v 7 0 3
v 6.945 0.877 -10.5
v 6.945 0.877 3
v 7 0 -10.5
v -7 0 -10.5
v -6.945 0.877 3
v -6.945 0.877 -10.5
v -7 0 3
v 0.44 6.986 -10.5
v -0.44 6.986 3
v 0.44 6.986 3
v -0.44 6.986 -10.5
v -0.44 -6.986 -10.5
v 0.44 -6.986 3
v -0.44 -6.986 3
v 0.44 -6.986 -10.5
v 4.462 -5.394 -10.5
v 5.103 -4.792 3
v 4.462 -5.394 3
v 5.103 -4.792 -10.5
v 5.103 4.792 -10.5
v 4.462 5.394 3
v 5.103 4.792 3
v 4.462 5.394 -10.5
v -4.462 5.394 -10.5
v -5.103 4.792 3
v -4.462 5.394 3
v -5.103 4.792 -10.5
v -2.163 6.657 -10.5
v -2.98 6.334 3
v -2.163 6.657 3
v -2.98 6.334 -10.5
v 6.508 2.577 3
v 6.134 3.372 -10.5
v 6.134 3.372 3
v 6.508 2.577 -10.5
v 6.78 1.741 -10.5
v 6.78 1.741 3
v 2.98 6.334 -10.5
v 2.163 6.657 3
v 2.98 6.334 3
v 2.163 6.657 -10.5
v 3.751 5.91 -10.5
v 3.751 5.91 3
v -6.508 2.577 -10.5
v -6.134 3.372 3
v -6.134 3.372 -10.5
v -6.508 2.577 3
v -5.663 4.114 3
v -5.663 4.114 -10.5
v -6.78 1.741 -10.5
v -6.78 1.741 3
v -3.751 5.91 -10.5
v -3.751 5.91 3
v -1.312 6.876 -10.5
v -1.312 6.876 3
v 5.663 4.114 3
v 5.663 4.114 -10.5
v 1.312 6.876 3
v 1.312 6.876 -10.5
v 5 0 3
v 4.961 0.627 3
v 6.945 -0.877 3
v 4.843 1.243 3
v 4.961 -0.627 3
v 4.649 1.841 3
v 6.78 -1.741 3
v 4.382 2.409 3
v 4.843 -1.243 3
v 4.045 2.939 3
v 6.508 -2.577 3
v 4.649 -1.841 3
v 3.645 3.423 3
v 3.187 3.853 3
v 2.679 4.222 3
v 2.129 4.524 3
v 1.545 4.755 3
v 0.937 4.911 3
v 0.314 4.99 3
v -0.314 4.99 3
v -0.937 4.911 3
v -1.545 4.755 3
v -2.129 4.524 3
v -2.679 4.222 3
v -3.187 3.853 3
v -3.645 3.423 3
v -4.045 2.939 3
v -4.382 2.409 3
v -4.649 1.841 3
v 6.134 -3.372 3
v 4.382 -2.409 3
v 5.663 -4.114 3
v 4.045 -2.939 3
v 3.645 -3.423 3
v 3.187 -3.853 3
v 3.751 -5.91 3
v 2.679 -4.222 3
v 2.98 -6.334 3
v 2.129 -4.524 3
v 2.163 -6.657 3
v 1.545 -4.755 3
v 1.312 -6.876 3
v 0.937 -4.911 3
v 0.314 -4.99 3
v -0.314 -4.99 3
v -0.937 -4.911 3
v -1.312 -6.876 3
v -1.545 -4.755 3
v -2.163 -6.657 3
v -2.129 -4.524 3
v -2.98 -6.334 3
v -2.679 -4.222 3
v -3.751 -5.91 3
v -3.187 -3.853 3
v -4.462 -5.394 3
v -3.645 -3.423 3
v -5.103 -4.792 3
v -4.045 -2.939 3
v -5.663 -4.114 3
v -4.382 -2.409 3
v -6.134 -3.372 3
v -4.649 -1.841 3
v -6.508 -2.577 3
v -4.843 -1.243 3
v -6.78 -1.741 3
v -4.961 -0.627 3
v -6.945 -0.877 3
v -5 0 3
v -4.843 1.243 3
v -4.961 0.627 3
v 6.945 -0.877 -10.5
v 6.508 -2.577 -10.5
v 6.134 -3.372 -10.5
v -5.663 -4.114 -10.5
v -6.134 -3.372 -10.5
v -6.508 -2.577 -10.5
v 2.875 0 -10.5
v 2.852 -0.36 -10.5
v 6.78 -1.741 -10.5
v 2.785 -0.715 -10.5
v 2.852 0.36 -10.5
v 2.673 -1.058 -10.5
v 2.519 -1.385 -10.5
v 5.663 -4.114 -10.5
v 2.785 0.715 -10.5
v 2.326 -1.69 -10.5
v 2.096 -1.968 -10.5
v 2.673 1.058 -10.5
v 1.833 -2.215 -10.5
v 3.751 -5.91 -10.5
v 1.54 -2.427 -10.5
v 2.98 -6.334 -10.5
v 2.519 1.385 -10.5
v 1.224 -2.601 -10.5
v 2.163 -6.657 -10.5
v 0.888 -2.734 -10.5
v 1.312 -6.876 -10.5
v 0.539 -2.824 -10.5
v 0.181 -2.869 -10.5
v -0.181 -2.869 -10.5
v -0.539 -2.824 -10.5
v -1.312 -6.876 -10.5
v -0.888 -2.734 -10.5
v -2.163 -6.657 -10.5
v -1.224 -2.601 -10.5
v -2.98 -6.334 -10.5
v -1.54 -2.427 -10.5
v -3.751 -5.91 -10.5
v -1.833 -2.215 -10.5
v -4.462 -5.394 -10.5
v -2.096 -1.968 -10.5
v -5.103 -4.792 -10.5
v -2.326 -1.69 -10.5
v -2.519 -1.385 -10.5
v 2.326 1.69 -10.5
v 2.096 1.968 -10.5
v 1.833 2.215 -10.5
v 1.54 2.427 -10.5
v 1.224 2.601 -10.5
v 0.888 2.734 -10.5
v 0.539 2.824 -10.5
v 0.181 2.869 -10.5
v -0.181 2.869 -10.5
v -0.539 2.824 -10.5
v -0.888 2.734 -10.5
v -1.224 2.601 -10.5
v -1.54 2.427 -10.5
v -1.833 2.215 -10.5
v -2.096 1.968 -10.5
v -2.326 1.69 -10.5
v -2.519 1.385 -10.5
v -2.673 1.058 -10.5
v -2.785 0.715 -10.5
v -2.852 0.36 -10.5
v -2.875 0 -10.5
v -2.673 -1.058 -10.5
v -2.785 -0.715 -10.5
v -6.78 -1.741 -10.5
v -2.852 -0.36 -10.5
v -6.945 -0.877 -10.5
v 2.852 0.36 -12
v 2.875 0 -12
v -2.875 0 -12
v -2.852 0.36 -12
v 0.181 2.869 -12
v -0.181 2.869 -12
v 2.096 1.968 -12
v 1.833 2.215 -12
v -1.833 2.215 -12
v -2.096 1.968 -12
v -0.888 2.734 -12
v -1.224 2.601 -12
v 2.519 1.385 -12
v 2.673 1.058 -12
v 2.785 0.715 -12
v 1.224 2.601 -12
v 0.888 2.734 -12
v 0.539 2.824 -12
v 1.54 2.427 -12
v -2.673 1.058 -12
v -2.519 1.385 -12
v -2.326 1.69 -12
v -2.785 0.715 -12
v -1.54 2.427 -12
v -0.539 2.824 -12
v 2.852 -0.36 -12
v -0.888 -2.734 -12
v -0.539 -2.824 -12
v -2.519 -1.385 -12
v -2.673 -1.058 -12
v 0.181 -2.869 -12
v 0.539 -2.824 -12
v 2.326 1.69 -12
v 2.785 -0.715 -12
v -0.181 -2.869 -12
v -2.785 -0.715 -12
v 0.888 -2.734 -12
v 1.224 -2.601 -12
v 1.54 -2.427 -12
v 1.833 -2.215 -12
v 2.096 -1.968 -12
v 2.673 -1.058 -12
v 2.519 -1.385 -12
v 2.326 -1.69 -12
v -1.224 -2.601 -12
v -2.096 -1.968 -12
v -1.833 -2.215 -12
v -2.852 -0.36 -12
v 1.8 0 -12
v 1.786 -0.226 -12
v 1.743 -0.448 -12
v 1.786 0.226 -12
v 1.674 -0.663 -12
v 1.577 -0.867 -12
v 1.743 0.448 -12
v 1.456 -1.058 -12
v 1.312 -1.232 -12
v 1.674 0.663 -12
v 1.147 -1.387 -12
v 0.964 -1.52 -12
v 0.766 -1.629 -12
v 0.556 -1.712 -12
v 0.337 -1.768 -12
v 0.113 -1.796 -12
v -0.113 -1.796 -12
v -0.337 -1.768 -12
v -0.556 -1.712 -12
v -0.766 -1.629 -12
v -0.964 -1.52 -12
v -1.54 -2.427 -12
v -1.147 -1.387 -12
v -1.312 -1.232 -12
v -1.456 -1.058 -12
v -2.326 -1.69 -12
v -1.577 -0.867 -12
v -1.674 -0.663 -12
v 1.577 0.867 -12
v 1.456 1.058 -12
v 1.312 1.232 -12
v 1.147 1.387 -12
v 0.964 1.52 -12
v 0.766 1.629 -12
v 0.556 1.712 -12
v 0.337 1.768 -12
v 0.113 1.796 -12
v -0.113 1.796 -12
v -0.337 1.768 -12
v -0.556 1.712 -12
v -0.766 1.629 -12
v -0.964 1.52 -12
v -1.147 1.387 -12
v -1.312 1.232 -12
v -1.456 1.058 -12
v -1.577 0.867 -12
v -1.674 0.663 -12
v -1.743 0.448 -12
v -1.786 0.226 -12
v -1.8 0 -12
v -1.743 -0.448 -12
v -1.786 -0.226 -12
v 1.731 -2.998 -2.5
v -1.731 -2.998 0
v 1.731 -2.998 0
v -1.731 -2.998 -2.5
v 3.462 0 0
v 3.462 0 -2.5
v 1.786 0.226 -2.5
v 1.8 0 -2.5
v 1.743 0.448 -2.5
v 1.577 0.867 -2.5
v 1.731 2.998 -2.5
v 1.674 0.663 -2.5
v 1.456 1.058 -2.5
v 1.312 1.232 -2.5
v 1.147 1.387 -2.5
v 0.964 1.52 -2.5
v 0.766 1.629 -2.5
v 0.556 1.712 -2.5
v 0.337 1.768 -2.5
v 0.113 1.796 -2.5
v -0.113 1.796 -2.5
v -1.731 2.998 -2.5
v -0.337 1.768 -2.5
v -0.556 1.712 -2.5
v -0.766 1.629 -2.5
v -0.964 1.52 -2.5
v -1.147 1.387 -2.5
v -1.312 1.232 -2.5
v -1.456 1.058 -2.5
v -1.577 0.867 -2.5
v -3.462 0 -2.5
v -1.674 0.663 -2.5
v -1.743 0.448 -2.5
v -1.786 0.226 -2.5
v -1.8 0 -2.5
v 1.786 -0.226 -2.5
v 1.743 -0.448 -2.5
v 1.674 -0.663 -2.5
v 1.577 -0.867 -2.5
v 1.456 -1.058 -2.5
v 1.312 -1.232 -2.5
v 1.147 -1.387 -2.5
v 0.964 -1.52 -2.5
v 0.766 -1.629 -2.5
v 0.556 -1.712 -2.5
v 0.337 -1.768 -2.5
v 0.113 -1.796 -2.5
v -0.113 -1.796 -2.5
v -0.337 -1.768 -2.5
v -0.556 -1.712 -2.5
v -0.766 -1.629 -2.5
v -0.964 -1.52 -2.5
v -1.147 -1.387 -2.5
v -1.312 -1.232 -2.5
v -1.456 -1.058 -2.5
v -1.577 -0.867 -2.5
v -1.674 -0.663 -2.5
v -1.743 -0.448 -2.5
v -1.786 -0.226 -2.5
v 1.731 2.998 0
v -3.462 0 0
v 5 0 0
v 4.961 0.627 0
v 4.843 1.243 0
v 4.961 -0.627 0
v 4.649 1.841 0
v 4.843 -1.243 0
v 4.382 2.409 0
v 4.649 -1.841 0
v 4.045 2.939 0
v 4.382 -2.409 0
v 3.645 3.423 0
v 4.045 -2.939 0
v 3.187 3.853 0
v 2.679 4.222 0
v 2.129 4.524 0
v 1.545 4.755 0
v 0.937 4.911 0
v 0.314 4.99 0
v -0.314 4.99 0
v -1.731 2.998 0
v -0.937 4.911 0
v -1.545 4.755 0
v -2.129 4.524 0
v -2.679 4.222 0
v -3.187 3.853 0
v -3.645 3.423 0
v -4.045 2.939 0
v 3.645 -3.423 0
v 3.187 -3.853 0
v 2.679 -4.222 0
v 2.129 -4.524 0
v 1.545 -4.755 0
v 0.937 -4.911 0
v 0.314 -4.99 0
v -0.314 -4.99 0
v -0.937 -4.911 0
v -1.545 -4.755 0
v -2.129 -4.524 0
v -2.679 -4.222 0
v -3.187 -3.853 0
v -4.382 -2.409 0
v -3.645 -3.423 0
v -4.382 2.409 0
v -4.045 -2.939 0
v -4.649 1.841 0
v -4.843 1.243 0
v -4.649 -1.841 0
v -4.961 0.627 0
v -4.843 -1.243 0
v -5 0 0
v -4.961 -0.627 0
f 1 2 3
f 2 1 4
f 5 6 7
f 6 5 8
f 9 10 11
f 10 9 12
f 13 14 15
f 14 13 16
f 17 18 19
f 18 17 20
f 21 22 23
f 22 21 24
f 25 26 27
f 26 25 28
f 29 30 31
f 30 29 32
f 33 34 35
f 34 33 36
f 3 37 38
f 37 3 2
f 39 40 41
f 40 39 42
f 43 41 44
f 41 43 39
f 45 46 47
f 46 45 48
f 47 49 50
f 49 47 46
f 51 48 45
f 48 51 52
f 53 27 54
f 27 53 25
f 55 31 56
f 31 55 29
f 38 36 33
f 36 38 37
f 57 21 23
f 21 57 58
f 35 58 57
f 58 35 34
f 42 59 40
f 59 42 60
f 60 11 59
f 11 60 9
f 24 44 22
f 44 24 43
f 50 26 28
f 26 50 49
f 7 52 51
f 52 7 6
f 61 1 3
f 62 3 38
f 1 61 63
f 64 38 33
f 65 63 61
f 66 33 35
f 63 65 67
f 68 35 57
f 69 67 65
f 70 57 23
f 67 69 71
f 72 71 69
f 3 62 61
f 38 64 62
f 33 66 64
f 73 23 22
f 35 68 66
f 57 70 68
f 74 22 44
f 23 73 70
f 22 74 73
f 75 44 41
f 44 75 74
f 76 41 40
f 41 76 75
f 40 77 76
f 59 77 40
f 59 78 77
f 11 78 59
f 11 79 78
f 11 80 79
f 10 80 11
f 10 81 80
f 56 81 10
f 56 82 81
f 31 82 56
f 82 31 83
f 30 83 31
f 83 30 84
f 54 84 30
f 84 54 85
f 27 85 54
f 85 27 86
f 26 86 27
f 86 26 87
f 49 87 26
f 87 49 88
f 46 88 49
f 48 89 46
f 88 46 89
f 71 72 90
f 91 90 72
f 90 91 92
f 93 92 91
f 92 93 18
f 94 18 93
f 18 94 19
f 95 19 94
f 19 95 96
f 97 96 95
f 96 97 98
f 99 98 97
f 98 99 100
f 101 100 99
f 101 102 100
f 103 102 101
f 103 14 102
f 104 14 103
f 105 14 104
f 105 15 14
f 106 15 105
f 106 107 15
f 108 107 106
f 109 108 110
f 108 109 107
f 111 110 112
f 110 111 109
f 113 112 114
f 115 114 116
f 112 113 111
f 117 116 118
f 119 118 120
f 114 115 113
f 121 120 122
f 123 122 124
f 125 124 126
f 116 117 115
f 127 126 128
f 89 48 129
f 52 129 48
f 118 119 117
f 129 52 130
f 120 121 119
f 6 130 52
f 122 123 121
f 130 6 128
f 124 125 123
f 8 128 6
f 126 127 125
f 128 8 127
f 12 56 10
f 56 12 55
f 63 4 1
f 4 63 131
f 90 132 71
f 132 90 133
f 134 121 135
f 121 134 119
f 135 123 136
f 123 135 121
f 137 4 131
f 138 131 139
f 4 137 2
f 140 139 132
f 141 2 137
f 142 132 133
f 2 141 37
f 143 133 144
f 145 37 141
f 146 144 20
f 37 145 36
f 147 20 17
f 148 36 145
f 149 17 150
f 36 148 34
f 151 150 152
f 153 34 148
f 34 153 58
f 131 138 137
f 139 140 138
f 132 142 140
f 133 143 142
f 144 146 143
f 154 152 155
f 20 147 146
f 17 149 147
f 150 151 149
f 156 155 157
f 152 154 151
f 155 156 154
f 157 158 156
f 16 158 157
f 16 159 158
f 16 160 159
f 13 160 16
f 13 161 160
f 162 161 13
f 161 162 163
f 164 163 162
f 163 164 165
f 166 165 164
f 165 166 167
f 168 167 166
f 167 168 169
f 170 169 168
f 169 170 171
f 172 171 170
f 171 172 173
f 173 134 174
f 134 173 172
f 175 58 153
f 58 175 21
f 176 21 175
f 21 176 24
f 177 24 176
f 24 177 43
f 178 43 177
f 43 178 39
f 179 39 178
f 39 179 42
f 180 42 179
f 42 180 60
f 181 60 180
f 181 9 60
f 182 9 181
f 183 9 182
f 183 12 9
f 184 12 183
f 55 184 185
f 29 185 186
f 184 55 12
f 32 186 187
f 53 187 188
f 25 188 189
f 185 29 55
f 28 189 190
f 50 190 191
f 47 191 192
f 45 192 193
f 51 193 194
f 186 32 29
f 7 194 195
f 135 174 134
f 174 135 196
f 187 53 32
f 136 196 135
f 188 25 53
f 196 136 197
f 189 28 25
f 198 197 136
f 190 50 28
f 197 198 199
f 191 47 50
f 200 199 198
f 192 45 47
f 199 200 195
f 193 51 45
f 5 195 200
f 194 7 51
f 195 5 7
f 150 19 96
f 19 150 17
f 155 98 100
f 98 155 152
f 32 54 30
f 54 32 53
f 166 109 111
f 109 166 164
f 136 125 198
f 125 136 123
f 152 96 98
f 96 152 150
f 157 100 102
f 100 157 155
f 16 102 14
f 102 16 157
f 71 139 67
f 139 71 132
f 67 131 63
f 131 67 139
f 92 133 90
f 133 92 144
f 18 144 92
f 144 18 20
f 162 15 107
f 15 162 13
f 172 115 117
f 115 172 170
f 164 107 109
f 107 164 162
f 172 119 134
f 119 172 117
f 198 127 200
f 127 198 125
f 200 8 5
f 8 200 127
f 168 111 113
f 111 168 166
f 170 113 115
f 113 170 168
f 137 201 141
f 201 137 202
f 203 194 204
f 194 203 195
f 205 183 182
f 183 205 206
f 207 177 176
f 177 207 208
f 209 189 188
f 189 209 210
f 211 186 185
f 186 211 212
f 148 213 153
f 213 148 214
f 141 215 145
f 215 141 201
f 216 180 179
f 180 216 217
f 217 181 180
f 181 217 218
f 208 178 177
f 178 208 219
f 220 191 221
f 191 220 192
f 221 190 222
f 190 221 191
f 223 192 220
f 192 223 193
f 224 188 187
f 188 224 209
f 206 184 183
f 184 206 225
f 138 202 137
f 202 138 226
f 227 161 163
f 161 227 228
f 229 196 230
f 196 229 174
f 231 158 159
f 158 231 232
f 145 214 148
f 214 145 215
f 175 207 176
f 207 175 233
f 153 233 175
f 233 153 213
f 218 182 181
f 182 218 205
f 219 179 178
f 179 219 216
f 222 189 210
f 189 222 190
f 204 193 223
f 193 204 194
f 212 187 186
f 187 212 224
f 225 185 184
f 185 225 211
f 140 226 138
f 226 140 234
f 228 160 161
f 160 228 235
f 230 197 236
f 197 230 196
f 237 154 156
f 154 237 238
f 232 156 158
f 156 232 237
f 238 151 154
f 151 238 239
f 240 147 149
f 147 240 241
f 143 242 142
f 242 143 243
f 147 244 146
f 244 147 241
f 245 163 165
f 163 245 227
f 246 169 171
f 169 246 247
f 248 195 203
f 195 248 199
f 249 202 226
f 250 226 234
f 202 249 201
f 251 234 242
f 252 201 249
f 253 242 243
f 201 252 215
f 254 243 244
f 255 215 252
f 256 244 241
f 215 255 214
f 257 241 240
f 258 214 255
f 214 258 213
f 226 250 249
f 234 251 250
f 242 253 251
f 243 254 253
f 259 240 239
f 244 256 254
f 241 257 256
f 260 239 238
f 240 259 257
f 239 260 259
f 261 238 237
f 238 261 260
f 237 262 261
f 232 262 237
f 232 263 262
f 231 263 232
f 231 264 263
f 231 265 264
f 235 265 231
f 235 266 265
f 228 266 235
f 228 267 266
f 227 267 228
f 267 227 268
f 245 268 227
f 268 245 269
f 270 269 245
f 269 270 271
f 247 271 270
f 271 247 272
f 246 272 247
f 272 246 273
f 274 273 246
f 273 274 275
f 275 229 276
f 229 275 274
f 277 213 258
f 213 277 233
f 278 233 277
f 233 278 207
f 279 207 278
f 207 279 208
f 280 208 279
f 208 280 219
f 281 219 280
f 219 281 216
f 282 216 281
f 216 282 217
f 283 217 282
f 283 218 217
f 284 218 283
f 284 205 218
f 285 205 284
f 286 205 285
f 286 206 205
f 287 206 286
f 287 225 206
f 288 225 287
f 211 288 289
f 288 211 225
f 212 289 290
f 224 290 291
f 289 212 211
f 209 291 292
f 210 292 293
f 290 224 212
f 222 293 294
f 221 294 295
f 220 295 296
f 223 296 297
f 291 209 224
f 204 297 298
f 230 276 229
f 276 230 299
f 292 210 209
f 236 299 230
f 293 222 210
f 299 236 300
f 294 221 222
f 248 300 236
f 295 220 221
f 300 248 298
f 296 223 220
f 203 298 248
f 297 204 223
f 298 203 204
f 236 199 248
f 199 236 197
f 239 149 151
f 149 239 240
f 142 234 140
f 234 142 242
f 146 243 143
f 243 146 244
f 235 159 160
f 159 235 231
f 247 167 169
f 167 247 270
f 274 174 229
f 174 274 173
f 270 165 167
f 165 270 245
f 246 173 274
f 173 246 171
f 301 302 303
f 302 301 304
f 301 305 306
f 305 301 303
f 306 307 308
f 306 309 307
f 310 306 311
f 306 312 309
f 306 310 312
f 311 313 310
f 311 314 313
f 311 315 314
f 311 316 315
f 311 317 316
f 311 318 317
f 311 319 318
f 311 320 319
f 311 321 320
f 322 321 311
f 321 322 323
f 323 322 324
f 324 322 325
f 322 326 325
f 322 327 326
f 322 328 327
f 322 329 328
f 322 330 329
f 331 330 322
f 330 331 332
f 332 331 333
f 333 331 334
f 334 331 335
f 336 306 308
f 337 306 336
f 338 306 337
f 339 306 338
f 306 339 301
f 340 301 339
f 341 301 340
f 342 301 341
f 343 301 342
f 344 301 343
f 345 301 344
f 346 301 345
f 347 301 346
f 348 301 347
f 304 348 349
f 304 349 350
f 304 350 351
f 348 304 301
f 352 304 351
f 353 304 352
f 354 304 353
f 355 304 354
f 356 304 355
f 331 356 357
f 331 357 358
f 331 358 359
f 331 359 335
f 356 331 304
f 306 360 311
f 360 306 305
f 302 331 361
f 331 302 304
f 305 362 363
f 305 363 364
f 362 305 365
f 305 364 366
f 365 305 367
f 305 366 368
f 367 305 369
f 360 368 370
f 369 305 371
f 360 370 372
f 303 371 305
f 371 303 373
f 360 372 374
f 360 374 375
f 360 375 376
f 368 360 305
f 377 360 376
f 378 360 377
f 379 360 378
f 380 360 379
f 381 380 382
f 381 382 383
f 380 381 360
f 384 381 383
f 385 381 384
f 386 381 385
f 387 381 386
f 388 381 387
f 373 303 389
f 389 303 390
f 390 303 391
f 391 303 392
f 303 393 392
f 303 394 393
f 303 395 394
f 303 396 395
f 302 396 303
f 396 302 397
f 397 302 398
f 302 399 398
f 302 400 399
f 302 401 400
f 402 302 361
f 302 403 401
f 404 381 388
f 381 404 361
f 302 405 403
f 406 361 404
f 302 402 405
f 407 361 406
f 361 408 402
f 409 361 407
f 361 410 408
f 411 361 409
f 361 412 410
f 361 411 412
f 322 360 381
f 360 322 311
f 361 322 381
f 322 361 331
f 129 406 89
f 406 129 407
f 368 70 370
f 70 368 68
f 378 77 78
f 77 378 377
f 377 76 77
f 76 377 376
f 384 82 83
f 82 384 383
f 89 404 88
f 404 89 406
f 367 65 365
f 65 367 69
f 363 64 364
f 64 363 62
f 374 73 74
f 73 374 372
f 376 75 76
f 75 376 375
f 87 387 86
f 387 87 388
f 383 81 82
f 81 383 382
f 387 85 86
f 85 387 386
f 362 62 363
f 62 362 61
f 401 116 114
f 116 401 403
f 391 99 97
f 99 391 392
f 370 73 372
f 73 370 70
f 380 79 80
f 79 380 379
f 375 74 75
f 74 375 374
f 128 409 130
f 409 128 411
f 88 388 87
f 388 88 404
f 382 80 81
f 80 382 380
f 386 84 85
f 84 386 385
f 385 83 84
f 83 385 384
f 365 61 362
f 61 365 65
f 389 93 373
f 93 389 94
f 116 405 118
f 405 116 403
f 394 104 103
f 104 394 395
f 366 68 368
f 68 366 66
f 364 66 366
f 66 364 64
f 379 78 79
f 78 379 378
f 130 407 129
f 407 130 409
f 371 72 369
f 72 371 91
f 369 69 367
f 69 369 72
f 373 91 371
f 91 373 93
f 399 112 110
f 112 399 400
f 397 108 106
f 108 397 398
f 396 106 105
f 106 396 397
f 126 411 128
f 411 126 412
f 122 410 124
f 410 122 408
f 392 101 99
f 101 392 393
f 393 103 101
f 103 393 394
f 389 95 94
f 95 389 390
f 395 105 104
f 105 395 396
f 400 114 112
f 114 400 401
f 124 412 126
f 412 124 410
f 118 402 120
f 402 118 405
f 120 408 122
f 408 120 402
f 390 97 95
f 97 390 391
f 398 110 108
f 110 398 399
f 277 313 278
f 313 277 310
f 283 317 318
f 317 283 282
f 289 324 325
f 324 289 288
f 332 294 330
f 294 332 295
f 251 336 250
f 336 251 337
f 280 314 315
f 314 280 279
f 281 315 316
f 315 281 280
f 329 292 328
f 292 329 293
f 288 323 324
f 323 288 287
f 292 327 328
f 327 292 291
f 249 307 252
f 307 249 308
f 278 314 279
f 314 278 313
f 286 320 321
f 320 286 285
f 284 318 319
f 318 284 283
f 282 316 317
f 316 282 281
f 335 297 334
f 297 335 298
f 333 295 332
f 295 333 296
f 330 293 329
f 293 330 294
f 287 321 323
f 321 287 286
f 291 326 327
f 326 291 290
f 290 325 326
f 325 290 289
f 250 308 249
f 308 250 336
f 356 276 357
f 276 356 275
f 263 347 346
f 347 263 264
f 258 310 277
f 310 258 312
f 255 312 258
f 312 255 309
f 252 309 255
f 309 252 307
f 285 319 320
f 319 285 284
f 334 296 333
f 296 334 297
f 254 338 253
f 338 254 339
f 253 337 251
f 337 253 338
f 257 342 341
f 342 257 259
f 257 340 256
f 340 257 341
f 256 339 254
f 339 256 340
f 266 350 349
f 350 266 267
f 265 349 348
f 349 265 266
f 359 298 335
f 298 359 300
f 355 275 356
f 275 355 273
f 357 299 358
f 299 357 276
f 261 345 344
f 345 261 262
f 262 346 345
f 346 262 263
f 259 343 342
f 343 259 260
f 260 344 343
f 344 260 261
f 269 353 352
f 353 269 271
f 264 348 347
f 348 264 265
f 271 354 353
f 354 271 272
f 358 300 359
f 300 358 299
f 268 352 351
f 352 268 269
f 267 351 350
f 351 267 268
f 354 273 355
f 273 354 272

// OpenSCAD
$fn = 50;

difference() {
	union() {
		translate(v = [0, 0, -10.5]) {
			cylinder(h = 13.5, r = 7.0);
		}
		#translate(v = [0, 0, -12.0]) {
			cylinder(h = 12, r = 2.875);
		}
	}
	union() {
		translate(v = [0, 0, 0]) {
			rotate(a = [0, 0, 0]) {
				difference() {
					union() {
						translate(v = [0, 0, -2.5]) {
							linear_extrude(height = 2.5) {
								polygon(points = [[3.4619999999999997, 0.0], [1.7310000000000003, 2.9981799479017264], [-1.7309999999999992, 2.9981799479017264], [-3.4619999999999997, 4.2397272186481365e-16], [-1.7310000000000014, -2.998179947901726], [1.7309999999999977, -2.9981799479017277]]);
							}
						}
					}
					union();
				}
			}
		}
		#cylinder(h = 3, r = 5.0);
		#translate(v = [0, 0, -100.0]) {
			cylinder(h = 200, r = 1.8);
		}
	}
}
